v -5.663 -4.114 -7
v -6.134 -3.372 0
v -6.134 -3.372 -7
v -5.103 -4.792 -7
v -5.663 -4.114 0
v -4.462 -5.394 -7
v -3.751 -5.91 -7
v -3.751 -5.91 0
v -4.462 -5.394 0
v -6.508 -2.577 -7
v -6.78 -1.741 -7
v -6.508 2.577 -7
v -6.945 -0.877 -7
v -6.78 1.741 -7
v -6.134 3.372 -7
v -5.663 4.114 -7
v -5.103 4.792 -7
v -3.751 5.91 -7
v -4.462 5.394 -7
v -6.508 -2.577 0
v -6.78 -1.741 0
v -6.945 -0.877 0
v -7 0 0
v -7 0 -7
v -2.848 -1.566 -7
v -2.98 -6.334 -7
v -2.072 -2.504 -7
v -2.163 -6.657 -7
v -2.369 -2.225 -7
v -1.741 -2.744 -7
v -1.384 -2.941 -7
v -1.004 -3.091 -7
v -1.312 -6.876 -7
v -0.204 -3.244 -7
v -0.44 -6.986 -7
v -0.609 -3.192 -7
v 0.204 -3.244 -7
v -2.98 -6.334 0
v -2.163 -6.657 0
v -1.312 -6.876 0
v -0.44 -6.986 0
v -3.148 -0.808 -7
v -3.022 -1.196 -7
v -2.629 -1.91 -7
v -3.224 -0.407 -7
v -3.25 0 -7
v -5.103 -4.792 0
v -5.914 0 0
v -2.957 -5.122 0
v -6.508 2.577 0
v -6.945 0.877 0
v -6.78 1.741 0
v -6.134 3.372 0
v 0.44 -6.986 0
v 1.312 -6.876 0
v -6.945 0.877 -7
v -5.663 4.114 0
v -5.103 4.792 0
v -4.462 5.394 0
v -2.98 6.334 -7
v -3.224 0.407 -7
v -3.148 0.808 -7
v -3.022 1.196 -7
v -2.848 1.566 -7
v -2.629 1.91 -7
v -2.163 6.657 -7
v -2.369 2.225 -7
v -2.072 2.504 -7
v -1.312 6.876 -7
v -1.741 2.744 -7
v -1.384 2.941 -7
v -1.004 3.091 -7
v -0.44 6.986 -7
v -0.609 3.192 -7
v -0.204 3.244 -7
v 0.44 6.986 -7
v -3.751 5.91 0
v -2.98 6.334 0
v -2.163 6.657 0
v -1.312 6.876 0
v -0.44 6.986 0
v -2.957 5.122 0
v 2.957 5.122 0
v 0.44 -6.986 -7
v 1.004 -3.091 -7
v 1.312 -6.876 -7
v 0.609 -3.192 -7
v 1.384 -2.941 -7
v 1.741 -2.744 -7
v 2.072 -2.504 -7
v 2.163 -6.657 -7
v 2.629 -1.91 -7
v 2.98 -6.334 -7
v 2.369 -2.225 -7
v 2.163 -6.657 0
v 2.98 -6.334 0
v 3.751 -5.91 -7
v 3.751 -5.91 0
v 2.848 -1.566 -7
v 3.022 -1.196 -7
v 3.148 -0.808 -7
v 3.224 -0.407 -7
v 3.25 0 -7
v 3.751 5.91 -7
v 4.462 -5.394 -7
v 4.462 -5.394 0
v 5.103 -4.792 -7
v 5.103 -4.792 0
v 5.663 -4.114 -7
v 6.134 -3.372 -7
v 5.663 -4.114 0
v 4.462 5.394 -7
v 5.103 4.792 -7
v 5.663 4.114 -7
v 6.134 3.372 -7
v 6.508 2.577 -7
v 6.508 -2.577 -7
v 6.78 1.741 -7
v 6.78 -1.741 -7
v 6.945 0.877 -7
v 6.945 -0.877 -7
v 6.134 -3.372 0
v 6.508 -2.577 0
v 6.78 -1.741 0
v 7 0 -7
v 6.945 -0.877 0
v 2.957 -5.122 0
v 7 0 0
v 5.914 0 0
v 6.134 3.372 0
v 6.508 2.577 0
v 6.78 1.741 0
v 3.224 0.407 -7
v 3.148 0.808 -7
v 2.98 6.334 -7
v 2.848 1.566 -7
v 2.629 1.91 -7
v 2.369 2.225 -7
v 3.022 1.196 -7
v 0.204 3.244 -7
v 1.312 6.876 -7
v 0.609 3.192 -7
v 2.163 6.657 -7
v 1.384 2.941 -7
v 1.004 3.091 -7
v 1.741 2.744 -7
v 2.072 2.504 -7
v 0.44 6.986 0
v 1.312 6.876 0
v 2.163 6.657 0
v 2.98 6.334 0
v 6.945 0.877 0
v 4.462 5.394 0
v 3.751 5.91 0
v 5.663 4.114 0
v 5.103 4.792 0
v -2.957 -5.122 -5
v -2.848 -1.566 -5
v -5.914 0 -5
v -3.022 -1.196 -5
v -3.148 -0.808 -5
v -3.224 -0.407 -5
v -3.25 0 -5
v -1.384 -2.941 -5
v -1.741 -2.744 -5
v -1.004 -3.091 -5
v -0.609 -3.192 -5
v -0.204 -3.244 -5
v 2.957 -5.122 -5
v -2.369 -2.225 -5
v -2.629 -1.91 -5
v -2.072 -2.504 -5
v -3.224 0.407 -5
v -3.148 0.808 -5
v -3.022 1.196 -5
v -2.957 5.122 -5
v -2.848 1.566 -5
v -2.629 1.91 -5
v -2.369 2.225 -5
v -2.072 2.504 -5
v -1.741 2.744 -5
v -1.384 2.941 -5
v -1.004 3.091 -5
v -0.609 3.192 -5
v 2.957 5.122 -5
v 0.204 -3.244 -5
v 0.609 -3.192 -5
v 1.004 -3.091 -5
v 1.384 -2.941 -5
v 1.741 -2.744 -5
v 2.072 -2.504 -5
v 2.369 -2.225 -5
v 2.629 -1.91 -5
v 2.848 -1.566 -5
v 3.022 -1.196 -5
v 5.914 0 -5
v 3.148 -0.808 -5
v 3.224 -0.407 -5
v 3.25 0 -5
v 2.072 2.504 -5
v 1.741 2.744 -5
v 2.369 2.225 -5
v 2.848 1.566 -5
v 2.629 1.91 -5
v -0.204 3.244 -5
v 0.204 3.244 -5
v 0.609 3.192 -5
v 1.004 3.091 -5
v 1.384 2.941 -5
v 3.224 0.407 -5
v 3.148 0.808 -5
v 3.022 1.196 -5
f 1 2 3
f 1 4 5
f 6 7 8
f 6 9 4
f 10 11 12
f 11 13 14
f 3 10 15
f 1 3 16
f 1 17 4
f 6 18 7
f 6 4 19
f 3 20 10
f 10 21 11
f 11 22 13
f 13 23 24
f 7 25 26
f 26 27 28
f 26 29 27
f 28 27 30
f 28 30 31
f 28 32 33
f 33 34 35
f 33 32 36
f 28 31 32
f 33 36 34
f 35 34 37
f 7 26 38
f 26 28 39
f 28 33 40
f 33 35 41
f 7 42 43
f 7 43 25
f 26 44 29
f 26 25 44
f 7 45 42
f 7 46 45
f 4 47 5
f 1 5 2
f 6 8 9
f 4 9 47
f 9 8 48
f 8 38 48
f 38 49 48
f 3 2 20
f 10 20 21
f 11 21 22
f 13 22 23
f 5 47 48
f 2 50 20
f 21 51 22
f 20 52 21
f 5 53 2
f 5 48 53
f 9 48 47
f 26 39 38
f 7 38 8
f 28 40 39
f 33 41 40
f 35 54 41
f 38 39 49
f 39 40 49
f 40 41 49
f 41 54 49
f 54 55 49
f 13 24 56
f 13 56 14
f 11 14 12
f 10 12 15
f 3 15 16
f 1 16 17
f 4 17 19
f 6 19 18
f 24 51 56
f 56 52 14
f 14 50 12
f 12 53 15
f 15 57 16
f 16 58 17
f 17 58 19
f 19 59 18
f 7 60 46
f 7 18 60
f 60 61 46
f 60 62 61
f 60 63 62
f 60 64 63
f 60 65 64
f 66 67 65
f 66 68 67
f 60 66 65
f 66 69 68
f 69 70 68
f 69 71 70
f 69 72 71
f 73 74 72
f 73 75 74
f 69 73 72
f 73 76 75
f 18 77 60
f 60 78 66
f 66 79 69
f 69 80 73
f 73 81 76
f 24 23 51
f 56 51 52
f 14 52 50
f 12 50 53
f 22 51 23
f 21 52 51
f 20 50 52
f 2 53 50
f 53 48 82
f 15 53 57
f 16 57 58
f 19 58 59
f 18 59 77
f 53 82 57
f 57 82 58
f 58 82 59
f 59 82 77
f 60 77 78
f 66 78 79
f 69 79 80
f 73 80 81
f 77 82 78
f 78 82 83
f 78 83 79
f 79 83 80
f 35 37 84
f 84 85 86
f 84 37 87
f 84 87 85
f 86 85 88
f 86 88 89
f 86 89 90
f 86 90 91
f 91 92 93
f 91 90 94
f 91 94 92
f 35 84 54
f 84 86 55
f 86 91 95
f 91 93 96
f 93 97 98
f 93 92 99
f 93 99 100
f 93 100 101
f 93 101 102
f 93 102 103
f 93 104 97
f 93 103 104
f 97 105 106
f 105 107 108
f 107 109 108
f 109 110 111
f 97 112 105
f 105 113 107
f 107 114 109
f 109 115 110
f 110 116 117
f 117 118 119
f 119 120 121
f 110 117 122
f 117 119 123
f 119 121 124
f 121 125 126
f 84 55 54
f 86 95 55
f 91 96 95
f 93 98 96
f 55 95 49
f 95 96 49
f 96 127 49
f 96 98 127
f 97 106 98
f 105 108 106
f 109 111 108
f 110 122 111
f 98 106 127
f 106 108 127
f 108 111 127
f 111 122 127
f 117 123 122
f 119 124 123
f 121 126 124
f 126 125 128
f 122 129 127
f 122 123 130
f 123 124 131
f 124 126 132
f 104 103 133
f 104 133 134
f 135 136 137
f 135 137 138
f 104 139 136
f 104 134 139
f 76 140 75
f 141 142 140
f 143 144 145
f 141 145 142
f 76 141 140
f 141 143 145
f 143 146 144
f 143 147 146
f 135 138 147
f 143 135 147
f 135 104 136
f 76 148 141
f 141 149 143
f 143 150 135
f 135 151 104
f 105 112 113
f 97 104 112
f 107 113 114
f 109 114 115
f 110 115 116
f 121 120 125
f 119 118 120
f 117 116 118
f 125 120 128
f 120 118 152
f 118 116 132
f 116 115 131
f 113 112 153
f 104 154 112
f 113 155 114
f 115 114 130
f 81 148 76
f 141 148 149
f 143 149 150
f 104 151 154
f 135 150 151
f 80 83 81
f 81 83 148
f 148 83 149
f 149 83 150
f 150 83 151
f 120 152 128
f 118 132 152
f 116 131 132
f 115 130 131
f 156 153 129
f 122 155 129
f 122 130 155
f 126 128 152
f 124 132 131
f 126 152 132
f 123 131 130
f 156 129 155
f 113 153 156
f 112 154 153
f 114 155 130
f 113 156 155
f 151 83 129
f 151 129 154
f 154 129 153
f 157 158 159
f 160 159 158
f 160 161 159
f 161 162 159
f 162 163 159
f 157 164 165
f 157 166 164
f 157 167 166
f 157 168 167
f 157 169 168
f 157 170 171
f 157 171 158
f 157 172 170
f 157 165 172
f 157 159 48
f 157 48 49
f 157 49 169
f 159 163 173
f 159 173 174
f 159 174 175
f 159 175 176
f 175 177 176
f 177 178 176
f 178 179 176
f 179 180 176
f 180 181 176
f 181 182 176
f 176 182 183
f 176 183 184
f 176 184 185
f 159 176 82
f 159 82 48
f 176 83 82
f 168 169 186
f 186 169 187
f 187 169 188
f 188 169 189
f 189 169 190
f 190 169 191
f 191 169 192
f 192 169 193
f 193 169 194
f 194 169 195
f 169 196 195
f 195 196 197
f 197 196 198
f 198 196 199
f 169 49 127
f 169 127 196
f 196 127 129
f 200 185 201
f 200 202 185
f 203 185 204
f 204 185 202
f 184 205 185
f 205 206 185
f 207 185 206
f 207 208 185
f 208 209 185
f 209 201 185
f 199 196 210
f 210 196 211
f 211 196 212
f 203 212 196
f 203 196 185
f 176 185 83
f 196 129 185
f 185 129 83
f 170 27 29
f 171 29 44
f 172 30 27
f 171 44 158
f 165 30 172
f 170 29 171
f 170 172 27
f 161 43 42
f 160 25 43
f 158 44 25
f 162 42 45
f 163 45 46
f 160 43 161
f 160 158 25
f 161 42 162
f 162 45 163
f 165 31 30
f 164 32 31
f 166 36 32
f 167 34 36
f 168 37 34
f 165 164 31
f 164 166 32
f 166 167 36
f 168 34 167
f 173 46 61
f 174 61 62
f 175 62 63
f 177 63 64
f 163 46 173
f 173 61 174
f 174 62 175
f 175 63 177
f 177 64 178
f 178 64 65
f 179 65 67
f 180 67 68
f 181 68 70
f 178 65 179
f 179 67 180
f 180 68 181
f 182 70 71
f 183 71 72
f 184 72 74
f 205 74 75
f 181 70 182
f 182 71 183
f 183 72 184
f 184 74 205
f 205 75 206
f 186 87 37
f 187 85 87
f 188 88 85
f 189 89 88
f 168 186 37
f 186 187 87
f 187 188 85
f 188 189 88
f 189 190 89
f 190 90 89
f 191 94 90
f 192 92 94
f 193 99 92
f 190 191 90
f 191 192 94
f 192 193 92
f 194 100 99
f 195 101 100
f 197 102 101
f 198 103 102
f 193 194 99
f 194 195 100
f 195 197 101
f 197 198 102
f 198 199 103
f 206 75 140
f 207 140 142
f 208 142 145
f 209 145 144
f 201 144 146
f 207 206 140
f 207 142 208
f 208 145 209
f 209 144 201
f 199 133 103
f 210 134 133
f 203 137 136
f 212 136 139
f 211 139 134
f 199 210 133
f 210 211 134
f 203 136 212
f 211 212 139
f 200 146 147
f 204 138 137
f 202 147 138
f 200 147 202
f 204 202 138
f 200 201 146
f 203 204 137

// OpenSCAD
$fn = 50;

difference() {
	union() {
		translate(v = [0, 0, -7.0]) {
			cylinder(h = 7.0, r = 7.0);
		}
		#translate(v = [0, 0, -8.5]) {
			cylinder(h = 8.5, r = 2.875);
		}
	}
	union() {
		translate(v = [0, 0, 0]) {
			rotate(a = [0, 0, 0]) {
				difference() {
					union() {
						translate(v = [0, 0, -5]) {
							linear_extrude(height = 5) {
								polygon(points = [[5.914249999999999, 0.0], [2.957125, 5.1218907443321156], [-2.9571249999999982, 5.1218907443321156], [-5.914249999999999, 7.242867331857232e-16], [-2.9571250000000022, -5.121890744332115], [2.9571249999999956, -5.121890744332118]]);
							}
						}
					}
					union();
				}
			}
		}
		#translate(v = [0, 0, -100.0]) {
			cylinder(h = 200, r = 3.25);
		}
	}
}
